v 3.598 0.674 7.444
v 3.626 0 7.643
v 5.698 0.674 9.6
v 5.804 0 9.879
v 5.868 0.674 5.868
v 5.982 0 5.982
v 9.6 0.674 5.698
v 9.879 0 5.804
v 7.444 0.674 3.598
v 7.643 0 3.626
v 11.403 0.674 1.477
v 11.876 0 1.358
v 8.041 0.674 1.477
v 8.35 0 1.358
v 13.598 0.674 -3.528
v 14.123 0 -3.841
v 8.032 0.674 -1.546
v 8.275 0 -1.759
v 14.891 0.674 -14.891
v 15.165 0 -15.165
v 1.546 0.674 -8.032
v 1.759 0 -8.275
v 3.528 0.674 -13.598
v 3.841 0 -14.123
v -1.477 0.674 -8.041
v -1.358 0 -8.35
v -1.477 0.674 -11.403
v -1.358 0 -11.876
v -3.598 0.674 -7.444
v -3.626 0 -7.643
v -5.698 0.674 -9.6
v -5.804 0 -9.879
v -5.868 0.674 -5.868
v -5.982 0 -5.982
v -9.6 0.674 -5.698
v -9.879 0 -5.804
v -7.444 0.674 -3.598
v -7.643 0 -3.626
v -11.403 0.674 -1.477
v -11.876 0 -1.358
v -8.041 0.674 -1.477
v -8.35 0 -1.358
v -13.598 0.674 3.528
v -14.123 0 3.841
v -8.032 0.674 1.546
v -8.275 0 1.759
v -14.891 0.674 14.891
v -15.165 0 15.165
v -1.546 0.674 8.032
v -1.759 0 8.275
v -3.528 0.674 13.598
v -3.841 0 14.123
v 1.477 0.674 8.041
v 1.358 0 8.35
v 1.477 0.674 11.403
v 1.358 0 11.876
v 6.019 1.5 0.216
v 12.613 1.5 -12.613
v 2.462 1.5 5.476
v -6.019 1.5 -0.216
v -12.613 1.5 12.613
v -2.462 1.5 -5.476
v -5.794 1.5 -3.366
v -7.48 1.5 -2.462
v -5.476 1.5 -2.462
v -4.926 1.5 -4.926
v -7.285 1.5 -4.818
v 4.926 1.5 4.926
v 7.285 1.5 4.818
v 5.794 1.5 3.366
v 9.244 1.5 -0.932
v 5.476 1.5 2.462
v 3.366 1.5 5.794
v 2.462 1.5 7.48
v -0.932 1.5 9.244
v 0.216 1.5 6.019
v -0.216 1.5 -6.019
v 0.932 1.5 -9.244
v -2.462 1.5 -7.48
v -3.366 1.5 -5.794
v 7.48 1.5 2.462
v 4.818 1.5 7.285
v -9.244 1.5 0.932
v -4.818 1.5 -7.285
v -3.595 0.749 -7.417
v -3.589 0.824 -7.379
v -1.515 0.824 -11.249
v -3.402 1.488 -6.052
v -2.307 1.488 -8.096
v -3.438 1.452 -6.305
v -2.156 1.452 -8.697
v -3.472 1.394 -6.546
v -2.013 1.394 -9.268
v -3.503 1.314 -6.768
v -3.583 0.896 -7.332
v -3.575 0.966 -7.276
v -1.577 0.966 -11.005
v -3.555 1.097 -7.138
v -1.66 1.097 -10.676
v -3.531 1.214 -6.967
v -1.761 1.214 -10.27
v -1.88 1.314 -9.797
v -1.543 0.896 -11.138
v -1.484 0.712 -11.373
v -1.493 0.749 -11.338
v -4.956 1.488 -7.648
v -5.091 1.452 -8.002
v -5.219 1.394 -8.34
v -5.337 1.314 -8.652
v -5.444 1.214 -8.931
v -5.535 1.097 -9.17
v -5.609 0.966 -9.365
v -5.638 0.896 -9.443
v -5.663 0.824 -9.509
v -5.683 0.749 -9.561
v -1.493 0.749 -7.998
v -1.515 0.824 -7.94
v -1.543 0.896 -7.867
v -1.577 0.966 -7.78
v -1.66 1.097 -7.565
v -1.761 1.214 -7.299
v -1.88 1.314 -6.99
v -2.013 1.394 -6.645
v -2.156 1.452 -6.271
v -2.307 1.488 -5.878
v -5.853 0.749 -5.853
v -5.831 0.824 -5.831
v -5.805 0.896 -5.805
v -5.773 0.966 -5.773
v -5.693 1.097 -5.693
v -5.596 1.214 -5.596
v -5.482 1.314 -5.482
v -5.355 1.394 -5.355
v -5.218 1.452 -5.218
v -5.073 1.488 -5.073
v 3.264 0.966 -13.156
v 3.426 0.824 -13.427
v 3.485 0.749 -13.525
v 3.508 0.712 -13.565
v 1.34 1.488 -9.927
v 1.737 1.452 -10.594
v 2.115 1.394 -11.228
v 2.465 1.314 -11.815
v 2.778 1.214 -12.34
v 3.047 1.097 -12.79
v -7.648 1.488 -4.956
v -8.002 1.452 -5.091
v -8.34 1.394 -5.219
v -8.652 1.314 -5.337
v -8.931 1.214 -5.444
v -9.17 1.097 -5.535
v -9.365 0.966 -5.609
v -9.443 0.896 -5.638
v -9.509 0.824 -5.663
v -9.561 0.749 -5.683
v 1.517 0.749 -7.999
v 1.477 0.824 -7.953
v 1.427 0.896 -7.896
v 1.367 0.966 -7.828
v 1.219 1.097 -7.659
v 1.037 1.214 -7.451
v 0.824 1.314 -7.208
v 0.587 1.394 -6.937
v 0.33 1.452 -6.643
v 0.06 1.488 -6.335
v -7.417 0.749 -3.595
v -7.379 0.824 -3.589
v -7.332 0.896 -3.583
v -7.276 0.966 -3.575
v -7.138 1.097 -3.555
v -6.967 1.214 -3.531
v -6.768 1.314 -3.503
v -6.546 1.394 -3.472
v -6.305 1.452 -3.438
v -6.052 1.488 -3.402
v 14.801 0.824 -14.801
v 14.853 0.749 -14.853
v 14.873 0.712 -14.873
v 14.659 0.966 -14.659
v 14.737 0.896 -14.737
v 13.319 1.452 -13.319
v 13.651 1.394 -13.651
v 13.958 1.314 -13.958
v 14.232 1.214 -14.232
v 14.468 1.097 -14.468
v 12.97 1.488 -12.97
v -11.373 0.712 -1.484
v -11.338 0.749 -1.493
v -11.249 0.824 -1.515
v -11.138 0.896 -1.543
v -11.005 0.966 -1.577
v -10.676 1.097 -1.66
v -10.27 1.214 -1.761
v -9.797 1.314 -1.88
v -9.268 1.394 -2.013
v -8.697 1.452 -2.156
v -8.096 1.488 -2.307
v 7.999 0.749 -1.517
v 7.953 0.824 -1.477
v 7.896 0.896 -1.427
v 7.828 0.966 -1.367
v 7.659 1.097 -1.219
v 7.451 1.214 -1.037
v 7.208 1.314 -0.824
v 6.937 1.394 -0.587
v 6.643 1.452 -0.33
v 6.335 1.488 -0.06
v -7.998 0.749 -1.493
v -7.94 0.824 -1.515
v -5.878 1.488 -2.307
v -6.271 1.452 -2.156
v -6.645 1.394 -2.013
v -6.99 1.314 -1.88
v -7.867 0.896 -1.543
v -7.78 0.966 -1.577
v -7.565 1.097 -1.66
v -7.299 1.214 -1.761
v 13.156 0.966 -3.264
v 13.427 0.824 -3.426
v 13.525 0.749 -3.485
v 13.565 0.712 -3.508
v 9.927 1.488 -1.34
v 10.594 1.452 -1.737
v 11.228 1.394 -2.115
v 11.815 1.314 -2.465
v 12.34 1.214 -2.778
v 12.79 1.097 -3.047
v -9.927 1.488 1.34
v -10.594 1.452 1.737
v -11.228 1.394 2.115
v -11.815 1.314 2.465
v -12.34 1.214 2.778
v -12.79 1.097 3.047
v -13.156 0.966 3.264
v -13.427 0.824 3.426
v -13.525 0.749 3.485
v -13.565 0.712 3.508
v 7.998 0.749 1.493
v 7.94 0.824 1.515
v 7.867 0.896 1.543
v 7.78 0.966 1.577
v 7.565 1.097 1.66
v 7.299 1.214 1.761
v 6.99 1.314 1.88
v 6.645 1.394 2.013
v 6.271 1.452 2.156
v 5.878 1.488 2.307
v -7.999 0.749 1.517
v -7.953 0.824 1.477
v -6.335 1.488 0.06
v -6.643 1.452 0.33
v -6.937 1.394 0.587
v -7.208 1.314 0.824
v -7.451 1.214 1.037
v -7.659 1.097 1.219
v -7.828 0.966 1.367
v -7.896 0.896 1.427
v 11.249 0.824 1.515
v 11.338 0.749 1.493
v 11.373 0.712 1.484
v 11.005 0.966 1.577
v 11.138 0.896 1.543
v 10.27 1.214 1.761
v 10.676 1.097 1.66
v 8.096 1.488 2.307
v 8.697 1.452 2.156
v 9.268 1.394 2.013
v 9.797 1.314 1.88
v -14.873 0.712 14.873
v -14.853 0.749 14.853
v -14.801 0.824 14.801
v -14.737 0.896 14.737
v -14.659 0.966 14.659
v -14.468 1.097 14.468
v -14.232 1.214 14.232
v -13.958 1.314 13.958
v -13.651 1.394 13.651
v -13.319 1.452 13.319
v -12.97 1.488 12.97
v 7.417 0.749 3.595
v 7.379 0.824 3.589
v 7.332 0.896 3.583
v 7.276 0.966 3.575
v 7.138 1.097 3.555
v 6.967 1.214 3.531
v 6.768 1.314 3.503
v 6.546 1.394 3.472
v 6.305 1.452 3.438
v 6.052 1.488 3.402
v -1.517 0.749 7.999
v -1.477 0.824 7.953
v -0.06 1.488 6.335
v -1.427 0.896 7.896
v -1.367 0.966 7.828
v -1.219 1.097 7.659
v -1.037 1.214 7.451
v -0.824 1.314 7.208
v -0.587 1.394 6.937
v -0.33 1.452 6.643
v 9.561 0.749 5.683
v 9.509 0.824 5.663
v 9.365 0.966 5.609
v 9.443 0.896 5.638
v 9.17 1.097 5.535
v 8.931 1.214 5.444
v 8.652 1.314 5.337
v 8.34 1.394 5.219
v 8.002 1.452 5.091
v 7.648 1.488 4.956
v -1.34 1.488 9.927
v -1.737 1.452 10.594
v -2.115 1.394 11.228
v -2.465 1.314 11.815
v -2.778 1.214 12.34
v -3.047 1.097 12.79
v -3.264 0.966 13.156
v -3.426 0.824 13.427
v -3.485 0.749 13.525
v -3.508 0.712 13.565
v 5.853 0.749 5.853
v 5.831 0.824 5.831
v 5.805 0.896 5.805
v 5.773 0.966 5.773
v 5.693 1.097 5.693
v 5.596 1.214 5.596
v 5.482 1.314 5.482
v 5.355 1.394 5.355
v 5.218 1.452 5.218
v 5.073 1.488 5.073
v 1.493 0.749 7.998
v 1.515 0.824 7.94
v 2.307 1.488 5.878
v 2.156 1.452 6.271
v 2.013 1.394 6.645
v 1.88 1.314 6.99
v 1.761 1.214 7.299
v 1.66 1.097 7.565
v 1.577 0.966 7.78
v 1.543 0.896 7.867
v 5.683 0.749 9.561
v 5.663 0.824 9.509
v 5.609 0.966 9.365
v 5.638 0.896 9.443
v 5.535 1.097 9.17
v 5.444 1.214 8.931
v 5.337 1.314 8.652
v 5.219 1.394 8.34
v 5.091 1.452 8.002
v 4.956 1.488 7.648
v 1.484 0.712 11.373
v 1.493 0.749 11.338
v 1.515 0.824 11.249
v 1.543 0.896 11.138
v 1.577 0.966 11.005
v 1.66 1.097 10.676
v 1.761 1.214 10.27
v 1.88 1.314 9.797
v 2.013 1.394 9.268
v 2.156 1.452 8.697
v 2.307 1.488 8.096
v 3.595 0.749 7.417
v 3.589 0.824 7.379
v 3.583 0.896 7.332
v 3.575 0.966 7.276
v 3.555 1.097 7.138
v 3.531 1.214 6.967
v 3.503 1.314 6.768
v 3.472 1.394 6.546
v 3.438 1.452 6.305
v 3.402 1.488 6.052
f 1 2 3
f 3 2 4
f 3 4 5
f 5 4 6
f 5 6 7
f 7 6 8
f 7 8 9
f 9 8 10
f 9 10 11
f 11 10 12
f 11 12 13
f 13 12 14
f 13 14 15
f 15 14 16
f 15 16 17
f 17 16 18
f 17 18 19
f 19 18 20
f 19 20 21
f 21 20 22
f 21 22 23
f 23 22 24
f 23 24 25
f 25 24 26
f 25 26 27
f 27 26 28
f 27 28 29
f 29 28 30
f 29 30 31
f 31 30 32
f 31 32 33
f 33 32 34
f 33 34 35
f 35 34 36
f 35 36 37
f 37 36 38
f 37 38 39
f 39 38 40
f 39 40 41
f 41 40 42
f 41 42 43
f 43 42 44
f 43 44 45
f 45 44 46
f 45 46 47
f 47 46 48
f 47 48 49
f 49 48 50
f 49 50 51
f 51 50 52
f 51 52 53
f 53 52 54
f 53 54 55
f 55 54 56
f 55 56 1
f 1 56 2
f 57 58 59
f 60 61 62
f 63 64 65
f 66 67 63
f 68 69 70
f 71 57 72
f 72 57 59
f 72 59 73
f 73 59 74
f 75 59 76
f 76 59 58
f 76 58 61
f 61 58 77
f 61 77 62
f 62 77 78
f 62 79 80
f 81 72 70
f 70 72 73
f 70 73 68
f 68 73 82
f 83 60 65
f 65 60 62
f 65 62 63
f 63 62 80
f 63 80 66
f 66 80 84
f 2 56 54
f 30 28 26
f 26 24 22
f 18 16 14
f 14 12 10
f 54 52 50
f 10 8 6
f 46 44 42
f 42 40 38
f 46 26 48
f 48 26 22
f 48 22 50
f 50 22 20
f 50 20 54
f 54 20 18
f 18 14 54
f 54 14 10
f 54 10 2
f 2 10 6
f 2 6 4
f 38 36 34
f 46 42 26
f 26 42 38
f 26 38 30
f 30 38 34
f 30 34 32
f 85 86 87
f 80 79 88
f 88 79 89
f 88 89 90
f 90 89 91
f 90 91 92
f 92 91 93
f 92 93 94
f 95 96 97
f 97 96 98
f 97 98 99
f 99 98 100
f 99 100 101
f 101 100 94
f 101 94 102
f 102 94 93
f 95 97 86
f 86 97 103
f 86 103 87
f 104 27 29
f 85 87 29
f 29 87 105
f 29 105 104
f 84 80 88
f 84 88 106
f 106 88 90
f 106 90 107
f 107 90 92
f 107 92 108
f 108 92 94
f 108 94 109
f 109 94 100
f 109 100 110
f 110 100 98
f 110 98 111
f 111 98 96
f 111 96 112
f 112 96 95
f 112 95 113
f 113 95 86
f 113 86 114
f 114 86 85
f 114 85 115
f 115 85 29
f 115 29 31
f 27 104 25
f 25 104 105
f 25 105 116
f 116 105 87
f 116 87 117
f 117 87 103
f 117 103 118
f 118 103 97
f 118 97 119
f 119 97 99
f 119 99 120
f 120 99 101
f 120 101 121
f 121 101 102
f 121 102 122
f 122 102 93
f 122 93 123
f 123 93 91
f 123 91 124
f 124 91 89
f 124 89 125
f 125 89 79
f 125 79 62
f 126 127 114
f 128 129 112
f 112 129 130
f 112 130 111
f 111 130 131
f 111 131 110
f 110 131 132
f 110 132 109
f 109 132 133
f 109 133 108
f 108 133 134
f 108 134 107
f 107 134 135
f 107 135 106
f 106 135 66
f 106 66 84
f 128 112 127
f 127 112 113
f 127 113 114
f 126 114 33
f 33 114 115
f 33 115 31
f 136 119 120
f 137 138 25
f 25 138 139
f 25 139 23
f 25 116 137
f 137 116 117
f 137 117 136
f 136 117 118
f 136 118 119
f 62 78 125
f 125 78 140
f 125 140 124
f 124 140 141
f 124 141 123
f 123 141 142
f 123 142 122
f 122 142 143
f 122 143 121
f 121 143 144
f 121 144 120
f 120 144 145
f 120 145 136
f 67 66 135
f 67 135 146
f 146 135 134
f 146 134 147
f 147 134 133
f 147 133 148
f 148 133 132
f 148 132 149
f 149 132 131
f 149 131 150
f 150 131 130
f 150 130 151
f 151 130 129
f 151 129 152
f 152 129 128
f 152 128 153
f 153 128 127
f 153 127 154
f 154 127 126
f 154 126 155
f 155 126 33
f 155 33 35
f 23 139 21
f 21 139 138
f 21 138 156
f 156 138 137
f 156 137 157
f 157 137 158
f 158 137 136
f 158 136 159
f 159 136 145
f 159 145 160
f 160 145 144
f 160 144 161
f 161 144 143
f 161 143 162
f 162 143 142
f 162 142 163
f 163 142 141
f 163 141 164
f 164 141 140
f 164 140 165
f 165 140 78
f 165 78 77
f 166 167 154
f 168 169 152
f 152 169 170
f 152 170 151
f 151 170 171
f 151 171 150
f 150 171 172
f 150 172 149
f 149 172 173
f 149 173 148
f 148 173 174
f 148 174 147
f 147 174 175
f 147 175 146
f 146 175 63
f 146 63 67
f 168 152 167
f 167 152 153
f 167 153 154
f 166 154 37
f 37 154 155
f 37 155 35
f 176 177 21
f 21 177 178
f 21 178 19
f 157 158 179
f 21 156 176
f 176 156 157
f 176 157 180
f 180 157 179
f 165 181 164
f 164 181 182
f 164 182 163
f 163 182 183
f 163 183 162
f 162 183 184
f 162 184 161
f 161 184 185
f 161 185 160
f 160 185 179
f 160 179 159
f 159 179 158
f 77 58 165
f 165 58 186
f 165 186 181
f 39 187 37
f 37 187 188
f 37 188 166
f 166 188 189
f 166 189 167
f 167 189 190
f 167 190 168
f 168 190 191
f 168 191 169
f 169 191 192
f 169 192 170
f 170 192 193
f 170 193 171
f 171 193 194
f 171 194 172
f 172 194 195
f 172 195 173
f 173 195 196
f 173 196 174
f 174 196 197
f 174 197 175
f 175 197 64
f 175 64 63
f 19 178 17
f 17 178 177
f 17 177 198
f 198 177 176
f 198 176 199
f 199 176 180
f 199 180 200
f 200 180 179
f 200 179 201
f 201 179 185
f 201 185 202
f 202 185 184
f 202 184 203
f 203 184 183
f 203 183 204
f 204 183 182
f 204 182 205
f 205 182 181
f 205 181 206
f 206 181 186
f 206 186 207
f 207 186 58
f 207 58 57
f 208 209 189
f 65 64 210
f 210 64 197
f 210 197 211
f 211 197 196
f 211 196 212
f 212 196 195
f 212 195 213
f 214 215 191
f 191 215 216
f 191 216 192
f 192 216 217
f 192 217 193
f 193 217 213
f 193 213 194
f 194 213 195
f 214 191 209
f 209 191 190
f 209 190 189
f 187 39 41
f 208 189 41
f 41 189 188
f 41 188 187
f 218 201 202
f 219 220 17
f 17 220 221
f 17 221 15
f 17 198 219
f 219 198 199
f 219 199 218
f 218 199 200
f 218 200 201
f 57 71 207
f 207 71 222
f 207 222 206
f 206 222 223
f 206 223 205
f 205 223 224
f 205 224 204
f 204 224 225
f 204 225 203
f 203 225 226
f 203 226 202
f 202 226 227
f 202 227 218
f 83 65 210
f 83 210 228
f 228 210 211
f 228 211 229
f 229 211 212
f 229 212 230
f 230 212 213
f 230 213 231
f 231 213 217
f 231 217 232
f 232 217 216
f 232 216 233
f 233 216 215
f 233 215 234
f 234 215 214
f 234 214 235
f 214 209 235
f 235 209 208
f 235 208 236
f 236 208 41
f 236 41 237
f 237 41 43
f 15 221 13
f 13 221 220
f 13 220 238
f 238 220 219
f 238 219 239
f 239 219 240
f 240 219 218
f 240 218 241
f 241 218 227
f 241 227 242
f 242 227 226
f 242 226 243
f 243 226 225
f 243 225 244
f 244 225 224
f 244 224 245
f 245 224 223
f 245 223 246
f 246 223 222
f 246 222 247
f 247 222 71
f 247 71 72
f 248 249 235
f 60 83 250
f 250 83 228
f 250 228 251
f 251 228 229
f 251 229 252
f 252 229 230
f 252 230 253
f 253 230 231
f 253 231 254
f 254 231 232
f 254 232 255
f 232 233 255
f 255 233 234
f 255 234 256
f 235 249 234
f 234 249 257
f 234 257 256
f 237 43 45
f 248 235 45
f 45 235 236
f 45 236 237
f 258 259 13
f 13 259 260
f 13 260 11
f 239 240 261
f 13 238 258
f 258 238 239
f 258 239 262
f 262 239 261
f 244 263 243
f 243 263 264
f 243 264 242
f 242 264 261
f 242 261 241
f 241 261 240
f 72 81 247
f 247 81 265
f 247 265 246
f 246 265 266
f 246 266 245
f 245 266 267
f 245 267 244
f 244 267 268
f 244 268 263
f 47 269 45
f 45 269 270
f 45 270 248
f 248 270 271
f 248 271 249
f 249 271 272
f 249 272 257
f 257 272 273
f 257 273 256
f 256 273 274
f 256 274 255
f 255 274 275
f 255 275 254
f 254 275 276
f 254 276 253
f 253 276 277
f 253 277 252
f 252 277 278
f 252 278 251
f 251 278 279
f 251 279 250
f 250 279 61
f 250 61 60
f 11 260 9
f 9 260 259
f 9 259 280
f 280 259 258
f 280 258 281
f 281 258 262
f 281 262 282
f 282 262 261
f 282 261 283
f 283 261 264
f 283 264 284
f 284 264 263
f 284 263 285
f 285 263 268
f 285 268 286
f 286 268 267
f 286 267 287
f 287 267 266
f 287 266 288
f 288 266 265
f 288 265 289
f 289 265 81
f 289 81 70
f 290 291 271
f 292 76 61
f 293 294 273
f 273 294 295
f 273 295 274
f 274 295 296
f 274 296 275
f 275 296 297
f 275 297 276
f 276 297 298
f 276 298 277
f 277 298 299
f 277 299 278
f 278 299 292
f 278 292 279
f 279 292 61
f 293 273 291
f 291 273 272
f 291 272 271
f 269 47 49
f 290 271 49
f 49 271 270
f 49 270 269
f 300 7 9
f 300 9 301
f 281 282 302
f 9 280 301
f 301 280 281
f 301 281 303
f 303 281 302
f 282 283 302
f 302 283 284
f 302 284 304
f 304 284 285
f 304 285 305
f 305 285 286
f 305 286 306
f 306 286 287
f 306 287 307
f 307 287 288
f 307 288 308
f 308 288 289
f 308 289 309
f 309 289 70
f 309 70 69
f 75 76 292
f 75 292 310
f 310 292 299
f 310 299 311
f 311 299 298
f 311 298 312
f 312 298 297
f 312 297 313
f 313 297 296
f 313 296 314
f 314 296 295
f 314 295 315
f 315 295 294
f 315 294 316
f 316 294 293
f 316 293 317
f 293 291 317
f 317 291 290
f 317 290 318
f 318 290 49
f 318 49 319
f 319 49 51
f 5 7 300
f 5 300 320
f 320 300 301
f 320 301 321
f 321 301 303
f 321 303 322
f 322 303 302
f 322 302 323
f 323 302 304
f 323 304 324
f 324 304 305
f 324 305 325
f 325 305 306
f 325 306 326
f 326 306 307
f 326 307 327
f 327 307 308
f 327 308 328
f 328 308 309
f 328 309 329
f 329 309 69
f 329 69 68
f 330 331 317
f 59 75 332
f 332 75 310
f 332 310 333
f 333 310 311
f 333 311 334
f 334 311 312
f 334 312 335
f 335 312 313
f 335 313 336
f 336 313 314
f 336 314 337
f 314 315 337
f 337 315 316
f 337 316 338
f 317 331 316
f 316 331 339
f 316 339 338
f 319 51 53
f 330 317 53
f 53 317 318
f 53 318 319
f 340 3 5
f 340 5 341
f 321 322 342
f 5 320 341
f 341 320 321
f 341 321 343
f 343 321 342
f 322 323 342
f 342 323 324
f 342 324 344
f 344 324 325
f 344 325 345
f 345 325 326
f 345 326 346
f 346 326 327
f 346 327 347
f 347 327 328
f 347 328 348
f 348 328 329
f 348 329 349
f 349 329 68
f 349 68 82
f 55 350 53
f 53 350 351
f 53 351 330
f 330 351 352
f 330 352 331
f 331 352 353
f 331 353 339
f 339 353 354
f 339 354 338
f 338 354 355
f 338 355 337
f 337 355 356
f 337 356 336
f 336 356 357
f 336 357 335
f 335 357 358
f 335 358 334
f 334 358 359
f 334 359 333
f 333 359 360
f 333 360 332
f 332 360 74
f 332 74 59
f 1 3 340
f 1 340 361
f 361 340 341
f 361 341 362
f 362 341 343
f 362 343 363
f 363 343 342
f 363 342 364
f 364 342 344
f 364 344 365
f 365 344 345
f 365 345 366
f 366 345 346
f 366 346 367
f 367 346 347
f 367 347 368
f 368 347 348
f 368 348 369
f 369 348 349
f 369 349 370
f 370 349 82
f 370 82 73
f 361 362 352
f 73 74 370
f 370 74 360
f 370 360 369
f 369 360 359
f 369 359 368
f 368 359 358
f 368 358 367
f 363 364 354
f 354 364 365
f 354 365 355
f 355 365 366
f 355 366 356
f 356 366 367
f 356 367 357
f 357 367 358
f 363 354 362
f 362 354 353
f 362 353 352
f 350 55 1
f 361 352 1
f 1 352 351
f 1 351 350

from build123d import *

# Parameters (mm, degrees)
BOSS_EXTRUDE1_DEPTH = 1.5
BOSS_EXTRUDE1_DRAFT = 10
FILLET1_R           = 1


with BuildPart() as part:
    # Sketch2 → Boss-Extrude1 (with draft: the straight prism first)
    with BuildSketch(Plane(origin=(0, 0, 0), x_dir=(1, 0, 0), z_dir=(0, 1, 0))):
        Polygon((15.165421668, 15.165421668), (1.758667474, 8.275044622), (3.841126106, 14.123164889), (-1.358054626, 8.350147449), (-1.358054626, 11.87639847), (-3.626484108, 7.643159543), (-5.804072026, 9.87907884), (-5.982026195, 5.982026195), (-9.87907884, 5.804072026), (-7.643159543, 3.626484108), (-11.87639847, 1.358054626), (-8.350147449, 1.358054626), (-14.123164889, -3.841126106), (-8.275044622, -1.758667474), (-15.165421668, -15.165421668), (-1.758667474, -8.275044622), (-3.841126106, -14.123164889), (1.358054626, -8.350147449), (1.358054626, -11.87639847), (3.626484108, -7.643159543), (5.804072026, -9.87907884), (5.982026195, -5.982026195), (9.87907884, -5.804072026), (7.643159543, -3.626484108), (11.87639847, -1.358054626), (8.350147449, -1.358054626), (14.123164889, 3.841126106), (8.275044622, 1.758667474), align=None)
    extrude(amount=BOSS_EXTRUDE1_DEPTH)
    # Boss-Extrude1: the draft: its side faces are tilted about the plane it starts from
    boss_extrude1_sides = [part.faces().sort_by_distance(p)[0] for p in [
        (8.462044571, 0.75, -11.720233145),
        (2.79989679, 0.75, -11.199104756),
        (1.24153574, 0.75, -11.236656169),
        (-1.358054626, 0.75, -10.11327296),
        (-2.492269367, 0.75, -9.759779007),
        (-4.715278067, 0.75, -8.761119192),
        (-5.893049111, 0.75, -7.930552518),
        (-7.930552518, 0.75, -5.893049111),
        (-8.761119192, 0.75, -4.715278067),
        (-9.759779007, 0.75, -2.492269367),
        (-10.11327296, 0.75, -1.358054626),
        (-11.236656169, 0.75, 1.24153574),
        (-11.199104756, 0.75, 2.79989679),
        (-11.720233145, 0.75, 8.462044571),
        (-8.462044571, 0.75, 11.720233145),
        (-2.79989679, 0.75, 11.199104756),
        (-1.24153574, 0.75, 11.236656169),
        (1.358054626, 0.75, 10.11327296),
        (2.492269367, 0.75, 9.759779007),
        (4.715278067, 0.75, 8.761119192),
        (5.893049111, 0.75, 7.930552518),
        (7.930552518, 0.75, 5.893049111),
        (8.761119192, 0.75, 4.715278067),
        (9.759779007, 0.75, 2.492269367),
        (10.11327296, 0.75, 1.358054626),
        (11.236656169, 0.75, -1.24153574),
        (11.199104756, 0.75, -2.79989679),
        (11.720233145, 0.75, -8.462044571),
    ]]
    draft(boss_extrude1_sides, Plane(origin=(0, 0, 0), x_dir=(1, 0, 0), z_dir=(0, 1, 0)), BOSS_EXTRUDE1_DRAFT)

    # Fillet1
    fillet1_edges = [part.edges().sort_by_distance(p)[0] for p in [
        (7.493053935, 1.5, 5.648260868),
        (8.228576561, 1.5, 4.565827715),
        (9.01135359, 1.5, 2.593250574),
        (9.24203866, 1.5, 1.622545097),
        (10.307546597, 1.5, -0.760721217),
        (10.344144368, 1.5, -2.214694848),
        (11.144016172, 1.5, -7.919500612),
        (7.919500612, 1.5, -11.144016172),
        (2.214694848, 1.5, -10.344144368),
        (0.760721217, 1.5, -10.307546597),
        (4.565827715, 1.5, 8.228576561),
        (-1.622545097, 1.5, -9.24203866),
        (-2.593250574, 1.5, -9.01135359),
        (-4.565827715, 1.5, -8.228576561),
        (-5.648260868, 1.5, -7.493053935),
        (-7.493053935, 1.5, -5.648260868),
        (-8.228576561, 1.5, -4.565827715),
        (-9.01135359, 1.5, -2.593250574),
        (-9.24203866, 1.5, -1.622545097),
        (-10.307546597, 1.5, 0.760721217),
        (-10.344144368, 1.5, 2.214694848),
        (5.648260868, 1.5, 7.493053935),
        (-11.144016172, 1.5, 7.919500612),
        (-7.919500612, 1.5, 11.144016172),
        (-2.214694848, 1.5, 10.344144368),
        (-0.760721217, 1.5, 10.307546597),
        (1.622545097, 1.5, 9.24203866),
        (2.593250574, 1.5, 9.01135359),
    ]]
    fillet(fillet1_edges, radius=FILLET1_R)


solid = part.part
